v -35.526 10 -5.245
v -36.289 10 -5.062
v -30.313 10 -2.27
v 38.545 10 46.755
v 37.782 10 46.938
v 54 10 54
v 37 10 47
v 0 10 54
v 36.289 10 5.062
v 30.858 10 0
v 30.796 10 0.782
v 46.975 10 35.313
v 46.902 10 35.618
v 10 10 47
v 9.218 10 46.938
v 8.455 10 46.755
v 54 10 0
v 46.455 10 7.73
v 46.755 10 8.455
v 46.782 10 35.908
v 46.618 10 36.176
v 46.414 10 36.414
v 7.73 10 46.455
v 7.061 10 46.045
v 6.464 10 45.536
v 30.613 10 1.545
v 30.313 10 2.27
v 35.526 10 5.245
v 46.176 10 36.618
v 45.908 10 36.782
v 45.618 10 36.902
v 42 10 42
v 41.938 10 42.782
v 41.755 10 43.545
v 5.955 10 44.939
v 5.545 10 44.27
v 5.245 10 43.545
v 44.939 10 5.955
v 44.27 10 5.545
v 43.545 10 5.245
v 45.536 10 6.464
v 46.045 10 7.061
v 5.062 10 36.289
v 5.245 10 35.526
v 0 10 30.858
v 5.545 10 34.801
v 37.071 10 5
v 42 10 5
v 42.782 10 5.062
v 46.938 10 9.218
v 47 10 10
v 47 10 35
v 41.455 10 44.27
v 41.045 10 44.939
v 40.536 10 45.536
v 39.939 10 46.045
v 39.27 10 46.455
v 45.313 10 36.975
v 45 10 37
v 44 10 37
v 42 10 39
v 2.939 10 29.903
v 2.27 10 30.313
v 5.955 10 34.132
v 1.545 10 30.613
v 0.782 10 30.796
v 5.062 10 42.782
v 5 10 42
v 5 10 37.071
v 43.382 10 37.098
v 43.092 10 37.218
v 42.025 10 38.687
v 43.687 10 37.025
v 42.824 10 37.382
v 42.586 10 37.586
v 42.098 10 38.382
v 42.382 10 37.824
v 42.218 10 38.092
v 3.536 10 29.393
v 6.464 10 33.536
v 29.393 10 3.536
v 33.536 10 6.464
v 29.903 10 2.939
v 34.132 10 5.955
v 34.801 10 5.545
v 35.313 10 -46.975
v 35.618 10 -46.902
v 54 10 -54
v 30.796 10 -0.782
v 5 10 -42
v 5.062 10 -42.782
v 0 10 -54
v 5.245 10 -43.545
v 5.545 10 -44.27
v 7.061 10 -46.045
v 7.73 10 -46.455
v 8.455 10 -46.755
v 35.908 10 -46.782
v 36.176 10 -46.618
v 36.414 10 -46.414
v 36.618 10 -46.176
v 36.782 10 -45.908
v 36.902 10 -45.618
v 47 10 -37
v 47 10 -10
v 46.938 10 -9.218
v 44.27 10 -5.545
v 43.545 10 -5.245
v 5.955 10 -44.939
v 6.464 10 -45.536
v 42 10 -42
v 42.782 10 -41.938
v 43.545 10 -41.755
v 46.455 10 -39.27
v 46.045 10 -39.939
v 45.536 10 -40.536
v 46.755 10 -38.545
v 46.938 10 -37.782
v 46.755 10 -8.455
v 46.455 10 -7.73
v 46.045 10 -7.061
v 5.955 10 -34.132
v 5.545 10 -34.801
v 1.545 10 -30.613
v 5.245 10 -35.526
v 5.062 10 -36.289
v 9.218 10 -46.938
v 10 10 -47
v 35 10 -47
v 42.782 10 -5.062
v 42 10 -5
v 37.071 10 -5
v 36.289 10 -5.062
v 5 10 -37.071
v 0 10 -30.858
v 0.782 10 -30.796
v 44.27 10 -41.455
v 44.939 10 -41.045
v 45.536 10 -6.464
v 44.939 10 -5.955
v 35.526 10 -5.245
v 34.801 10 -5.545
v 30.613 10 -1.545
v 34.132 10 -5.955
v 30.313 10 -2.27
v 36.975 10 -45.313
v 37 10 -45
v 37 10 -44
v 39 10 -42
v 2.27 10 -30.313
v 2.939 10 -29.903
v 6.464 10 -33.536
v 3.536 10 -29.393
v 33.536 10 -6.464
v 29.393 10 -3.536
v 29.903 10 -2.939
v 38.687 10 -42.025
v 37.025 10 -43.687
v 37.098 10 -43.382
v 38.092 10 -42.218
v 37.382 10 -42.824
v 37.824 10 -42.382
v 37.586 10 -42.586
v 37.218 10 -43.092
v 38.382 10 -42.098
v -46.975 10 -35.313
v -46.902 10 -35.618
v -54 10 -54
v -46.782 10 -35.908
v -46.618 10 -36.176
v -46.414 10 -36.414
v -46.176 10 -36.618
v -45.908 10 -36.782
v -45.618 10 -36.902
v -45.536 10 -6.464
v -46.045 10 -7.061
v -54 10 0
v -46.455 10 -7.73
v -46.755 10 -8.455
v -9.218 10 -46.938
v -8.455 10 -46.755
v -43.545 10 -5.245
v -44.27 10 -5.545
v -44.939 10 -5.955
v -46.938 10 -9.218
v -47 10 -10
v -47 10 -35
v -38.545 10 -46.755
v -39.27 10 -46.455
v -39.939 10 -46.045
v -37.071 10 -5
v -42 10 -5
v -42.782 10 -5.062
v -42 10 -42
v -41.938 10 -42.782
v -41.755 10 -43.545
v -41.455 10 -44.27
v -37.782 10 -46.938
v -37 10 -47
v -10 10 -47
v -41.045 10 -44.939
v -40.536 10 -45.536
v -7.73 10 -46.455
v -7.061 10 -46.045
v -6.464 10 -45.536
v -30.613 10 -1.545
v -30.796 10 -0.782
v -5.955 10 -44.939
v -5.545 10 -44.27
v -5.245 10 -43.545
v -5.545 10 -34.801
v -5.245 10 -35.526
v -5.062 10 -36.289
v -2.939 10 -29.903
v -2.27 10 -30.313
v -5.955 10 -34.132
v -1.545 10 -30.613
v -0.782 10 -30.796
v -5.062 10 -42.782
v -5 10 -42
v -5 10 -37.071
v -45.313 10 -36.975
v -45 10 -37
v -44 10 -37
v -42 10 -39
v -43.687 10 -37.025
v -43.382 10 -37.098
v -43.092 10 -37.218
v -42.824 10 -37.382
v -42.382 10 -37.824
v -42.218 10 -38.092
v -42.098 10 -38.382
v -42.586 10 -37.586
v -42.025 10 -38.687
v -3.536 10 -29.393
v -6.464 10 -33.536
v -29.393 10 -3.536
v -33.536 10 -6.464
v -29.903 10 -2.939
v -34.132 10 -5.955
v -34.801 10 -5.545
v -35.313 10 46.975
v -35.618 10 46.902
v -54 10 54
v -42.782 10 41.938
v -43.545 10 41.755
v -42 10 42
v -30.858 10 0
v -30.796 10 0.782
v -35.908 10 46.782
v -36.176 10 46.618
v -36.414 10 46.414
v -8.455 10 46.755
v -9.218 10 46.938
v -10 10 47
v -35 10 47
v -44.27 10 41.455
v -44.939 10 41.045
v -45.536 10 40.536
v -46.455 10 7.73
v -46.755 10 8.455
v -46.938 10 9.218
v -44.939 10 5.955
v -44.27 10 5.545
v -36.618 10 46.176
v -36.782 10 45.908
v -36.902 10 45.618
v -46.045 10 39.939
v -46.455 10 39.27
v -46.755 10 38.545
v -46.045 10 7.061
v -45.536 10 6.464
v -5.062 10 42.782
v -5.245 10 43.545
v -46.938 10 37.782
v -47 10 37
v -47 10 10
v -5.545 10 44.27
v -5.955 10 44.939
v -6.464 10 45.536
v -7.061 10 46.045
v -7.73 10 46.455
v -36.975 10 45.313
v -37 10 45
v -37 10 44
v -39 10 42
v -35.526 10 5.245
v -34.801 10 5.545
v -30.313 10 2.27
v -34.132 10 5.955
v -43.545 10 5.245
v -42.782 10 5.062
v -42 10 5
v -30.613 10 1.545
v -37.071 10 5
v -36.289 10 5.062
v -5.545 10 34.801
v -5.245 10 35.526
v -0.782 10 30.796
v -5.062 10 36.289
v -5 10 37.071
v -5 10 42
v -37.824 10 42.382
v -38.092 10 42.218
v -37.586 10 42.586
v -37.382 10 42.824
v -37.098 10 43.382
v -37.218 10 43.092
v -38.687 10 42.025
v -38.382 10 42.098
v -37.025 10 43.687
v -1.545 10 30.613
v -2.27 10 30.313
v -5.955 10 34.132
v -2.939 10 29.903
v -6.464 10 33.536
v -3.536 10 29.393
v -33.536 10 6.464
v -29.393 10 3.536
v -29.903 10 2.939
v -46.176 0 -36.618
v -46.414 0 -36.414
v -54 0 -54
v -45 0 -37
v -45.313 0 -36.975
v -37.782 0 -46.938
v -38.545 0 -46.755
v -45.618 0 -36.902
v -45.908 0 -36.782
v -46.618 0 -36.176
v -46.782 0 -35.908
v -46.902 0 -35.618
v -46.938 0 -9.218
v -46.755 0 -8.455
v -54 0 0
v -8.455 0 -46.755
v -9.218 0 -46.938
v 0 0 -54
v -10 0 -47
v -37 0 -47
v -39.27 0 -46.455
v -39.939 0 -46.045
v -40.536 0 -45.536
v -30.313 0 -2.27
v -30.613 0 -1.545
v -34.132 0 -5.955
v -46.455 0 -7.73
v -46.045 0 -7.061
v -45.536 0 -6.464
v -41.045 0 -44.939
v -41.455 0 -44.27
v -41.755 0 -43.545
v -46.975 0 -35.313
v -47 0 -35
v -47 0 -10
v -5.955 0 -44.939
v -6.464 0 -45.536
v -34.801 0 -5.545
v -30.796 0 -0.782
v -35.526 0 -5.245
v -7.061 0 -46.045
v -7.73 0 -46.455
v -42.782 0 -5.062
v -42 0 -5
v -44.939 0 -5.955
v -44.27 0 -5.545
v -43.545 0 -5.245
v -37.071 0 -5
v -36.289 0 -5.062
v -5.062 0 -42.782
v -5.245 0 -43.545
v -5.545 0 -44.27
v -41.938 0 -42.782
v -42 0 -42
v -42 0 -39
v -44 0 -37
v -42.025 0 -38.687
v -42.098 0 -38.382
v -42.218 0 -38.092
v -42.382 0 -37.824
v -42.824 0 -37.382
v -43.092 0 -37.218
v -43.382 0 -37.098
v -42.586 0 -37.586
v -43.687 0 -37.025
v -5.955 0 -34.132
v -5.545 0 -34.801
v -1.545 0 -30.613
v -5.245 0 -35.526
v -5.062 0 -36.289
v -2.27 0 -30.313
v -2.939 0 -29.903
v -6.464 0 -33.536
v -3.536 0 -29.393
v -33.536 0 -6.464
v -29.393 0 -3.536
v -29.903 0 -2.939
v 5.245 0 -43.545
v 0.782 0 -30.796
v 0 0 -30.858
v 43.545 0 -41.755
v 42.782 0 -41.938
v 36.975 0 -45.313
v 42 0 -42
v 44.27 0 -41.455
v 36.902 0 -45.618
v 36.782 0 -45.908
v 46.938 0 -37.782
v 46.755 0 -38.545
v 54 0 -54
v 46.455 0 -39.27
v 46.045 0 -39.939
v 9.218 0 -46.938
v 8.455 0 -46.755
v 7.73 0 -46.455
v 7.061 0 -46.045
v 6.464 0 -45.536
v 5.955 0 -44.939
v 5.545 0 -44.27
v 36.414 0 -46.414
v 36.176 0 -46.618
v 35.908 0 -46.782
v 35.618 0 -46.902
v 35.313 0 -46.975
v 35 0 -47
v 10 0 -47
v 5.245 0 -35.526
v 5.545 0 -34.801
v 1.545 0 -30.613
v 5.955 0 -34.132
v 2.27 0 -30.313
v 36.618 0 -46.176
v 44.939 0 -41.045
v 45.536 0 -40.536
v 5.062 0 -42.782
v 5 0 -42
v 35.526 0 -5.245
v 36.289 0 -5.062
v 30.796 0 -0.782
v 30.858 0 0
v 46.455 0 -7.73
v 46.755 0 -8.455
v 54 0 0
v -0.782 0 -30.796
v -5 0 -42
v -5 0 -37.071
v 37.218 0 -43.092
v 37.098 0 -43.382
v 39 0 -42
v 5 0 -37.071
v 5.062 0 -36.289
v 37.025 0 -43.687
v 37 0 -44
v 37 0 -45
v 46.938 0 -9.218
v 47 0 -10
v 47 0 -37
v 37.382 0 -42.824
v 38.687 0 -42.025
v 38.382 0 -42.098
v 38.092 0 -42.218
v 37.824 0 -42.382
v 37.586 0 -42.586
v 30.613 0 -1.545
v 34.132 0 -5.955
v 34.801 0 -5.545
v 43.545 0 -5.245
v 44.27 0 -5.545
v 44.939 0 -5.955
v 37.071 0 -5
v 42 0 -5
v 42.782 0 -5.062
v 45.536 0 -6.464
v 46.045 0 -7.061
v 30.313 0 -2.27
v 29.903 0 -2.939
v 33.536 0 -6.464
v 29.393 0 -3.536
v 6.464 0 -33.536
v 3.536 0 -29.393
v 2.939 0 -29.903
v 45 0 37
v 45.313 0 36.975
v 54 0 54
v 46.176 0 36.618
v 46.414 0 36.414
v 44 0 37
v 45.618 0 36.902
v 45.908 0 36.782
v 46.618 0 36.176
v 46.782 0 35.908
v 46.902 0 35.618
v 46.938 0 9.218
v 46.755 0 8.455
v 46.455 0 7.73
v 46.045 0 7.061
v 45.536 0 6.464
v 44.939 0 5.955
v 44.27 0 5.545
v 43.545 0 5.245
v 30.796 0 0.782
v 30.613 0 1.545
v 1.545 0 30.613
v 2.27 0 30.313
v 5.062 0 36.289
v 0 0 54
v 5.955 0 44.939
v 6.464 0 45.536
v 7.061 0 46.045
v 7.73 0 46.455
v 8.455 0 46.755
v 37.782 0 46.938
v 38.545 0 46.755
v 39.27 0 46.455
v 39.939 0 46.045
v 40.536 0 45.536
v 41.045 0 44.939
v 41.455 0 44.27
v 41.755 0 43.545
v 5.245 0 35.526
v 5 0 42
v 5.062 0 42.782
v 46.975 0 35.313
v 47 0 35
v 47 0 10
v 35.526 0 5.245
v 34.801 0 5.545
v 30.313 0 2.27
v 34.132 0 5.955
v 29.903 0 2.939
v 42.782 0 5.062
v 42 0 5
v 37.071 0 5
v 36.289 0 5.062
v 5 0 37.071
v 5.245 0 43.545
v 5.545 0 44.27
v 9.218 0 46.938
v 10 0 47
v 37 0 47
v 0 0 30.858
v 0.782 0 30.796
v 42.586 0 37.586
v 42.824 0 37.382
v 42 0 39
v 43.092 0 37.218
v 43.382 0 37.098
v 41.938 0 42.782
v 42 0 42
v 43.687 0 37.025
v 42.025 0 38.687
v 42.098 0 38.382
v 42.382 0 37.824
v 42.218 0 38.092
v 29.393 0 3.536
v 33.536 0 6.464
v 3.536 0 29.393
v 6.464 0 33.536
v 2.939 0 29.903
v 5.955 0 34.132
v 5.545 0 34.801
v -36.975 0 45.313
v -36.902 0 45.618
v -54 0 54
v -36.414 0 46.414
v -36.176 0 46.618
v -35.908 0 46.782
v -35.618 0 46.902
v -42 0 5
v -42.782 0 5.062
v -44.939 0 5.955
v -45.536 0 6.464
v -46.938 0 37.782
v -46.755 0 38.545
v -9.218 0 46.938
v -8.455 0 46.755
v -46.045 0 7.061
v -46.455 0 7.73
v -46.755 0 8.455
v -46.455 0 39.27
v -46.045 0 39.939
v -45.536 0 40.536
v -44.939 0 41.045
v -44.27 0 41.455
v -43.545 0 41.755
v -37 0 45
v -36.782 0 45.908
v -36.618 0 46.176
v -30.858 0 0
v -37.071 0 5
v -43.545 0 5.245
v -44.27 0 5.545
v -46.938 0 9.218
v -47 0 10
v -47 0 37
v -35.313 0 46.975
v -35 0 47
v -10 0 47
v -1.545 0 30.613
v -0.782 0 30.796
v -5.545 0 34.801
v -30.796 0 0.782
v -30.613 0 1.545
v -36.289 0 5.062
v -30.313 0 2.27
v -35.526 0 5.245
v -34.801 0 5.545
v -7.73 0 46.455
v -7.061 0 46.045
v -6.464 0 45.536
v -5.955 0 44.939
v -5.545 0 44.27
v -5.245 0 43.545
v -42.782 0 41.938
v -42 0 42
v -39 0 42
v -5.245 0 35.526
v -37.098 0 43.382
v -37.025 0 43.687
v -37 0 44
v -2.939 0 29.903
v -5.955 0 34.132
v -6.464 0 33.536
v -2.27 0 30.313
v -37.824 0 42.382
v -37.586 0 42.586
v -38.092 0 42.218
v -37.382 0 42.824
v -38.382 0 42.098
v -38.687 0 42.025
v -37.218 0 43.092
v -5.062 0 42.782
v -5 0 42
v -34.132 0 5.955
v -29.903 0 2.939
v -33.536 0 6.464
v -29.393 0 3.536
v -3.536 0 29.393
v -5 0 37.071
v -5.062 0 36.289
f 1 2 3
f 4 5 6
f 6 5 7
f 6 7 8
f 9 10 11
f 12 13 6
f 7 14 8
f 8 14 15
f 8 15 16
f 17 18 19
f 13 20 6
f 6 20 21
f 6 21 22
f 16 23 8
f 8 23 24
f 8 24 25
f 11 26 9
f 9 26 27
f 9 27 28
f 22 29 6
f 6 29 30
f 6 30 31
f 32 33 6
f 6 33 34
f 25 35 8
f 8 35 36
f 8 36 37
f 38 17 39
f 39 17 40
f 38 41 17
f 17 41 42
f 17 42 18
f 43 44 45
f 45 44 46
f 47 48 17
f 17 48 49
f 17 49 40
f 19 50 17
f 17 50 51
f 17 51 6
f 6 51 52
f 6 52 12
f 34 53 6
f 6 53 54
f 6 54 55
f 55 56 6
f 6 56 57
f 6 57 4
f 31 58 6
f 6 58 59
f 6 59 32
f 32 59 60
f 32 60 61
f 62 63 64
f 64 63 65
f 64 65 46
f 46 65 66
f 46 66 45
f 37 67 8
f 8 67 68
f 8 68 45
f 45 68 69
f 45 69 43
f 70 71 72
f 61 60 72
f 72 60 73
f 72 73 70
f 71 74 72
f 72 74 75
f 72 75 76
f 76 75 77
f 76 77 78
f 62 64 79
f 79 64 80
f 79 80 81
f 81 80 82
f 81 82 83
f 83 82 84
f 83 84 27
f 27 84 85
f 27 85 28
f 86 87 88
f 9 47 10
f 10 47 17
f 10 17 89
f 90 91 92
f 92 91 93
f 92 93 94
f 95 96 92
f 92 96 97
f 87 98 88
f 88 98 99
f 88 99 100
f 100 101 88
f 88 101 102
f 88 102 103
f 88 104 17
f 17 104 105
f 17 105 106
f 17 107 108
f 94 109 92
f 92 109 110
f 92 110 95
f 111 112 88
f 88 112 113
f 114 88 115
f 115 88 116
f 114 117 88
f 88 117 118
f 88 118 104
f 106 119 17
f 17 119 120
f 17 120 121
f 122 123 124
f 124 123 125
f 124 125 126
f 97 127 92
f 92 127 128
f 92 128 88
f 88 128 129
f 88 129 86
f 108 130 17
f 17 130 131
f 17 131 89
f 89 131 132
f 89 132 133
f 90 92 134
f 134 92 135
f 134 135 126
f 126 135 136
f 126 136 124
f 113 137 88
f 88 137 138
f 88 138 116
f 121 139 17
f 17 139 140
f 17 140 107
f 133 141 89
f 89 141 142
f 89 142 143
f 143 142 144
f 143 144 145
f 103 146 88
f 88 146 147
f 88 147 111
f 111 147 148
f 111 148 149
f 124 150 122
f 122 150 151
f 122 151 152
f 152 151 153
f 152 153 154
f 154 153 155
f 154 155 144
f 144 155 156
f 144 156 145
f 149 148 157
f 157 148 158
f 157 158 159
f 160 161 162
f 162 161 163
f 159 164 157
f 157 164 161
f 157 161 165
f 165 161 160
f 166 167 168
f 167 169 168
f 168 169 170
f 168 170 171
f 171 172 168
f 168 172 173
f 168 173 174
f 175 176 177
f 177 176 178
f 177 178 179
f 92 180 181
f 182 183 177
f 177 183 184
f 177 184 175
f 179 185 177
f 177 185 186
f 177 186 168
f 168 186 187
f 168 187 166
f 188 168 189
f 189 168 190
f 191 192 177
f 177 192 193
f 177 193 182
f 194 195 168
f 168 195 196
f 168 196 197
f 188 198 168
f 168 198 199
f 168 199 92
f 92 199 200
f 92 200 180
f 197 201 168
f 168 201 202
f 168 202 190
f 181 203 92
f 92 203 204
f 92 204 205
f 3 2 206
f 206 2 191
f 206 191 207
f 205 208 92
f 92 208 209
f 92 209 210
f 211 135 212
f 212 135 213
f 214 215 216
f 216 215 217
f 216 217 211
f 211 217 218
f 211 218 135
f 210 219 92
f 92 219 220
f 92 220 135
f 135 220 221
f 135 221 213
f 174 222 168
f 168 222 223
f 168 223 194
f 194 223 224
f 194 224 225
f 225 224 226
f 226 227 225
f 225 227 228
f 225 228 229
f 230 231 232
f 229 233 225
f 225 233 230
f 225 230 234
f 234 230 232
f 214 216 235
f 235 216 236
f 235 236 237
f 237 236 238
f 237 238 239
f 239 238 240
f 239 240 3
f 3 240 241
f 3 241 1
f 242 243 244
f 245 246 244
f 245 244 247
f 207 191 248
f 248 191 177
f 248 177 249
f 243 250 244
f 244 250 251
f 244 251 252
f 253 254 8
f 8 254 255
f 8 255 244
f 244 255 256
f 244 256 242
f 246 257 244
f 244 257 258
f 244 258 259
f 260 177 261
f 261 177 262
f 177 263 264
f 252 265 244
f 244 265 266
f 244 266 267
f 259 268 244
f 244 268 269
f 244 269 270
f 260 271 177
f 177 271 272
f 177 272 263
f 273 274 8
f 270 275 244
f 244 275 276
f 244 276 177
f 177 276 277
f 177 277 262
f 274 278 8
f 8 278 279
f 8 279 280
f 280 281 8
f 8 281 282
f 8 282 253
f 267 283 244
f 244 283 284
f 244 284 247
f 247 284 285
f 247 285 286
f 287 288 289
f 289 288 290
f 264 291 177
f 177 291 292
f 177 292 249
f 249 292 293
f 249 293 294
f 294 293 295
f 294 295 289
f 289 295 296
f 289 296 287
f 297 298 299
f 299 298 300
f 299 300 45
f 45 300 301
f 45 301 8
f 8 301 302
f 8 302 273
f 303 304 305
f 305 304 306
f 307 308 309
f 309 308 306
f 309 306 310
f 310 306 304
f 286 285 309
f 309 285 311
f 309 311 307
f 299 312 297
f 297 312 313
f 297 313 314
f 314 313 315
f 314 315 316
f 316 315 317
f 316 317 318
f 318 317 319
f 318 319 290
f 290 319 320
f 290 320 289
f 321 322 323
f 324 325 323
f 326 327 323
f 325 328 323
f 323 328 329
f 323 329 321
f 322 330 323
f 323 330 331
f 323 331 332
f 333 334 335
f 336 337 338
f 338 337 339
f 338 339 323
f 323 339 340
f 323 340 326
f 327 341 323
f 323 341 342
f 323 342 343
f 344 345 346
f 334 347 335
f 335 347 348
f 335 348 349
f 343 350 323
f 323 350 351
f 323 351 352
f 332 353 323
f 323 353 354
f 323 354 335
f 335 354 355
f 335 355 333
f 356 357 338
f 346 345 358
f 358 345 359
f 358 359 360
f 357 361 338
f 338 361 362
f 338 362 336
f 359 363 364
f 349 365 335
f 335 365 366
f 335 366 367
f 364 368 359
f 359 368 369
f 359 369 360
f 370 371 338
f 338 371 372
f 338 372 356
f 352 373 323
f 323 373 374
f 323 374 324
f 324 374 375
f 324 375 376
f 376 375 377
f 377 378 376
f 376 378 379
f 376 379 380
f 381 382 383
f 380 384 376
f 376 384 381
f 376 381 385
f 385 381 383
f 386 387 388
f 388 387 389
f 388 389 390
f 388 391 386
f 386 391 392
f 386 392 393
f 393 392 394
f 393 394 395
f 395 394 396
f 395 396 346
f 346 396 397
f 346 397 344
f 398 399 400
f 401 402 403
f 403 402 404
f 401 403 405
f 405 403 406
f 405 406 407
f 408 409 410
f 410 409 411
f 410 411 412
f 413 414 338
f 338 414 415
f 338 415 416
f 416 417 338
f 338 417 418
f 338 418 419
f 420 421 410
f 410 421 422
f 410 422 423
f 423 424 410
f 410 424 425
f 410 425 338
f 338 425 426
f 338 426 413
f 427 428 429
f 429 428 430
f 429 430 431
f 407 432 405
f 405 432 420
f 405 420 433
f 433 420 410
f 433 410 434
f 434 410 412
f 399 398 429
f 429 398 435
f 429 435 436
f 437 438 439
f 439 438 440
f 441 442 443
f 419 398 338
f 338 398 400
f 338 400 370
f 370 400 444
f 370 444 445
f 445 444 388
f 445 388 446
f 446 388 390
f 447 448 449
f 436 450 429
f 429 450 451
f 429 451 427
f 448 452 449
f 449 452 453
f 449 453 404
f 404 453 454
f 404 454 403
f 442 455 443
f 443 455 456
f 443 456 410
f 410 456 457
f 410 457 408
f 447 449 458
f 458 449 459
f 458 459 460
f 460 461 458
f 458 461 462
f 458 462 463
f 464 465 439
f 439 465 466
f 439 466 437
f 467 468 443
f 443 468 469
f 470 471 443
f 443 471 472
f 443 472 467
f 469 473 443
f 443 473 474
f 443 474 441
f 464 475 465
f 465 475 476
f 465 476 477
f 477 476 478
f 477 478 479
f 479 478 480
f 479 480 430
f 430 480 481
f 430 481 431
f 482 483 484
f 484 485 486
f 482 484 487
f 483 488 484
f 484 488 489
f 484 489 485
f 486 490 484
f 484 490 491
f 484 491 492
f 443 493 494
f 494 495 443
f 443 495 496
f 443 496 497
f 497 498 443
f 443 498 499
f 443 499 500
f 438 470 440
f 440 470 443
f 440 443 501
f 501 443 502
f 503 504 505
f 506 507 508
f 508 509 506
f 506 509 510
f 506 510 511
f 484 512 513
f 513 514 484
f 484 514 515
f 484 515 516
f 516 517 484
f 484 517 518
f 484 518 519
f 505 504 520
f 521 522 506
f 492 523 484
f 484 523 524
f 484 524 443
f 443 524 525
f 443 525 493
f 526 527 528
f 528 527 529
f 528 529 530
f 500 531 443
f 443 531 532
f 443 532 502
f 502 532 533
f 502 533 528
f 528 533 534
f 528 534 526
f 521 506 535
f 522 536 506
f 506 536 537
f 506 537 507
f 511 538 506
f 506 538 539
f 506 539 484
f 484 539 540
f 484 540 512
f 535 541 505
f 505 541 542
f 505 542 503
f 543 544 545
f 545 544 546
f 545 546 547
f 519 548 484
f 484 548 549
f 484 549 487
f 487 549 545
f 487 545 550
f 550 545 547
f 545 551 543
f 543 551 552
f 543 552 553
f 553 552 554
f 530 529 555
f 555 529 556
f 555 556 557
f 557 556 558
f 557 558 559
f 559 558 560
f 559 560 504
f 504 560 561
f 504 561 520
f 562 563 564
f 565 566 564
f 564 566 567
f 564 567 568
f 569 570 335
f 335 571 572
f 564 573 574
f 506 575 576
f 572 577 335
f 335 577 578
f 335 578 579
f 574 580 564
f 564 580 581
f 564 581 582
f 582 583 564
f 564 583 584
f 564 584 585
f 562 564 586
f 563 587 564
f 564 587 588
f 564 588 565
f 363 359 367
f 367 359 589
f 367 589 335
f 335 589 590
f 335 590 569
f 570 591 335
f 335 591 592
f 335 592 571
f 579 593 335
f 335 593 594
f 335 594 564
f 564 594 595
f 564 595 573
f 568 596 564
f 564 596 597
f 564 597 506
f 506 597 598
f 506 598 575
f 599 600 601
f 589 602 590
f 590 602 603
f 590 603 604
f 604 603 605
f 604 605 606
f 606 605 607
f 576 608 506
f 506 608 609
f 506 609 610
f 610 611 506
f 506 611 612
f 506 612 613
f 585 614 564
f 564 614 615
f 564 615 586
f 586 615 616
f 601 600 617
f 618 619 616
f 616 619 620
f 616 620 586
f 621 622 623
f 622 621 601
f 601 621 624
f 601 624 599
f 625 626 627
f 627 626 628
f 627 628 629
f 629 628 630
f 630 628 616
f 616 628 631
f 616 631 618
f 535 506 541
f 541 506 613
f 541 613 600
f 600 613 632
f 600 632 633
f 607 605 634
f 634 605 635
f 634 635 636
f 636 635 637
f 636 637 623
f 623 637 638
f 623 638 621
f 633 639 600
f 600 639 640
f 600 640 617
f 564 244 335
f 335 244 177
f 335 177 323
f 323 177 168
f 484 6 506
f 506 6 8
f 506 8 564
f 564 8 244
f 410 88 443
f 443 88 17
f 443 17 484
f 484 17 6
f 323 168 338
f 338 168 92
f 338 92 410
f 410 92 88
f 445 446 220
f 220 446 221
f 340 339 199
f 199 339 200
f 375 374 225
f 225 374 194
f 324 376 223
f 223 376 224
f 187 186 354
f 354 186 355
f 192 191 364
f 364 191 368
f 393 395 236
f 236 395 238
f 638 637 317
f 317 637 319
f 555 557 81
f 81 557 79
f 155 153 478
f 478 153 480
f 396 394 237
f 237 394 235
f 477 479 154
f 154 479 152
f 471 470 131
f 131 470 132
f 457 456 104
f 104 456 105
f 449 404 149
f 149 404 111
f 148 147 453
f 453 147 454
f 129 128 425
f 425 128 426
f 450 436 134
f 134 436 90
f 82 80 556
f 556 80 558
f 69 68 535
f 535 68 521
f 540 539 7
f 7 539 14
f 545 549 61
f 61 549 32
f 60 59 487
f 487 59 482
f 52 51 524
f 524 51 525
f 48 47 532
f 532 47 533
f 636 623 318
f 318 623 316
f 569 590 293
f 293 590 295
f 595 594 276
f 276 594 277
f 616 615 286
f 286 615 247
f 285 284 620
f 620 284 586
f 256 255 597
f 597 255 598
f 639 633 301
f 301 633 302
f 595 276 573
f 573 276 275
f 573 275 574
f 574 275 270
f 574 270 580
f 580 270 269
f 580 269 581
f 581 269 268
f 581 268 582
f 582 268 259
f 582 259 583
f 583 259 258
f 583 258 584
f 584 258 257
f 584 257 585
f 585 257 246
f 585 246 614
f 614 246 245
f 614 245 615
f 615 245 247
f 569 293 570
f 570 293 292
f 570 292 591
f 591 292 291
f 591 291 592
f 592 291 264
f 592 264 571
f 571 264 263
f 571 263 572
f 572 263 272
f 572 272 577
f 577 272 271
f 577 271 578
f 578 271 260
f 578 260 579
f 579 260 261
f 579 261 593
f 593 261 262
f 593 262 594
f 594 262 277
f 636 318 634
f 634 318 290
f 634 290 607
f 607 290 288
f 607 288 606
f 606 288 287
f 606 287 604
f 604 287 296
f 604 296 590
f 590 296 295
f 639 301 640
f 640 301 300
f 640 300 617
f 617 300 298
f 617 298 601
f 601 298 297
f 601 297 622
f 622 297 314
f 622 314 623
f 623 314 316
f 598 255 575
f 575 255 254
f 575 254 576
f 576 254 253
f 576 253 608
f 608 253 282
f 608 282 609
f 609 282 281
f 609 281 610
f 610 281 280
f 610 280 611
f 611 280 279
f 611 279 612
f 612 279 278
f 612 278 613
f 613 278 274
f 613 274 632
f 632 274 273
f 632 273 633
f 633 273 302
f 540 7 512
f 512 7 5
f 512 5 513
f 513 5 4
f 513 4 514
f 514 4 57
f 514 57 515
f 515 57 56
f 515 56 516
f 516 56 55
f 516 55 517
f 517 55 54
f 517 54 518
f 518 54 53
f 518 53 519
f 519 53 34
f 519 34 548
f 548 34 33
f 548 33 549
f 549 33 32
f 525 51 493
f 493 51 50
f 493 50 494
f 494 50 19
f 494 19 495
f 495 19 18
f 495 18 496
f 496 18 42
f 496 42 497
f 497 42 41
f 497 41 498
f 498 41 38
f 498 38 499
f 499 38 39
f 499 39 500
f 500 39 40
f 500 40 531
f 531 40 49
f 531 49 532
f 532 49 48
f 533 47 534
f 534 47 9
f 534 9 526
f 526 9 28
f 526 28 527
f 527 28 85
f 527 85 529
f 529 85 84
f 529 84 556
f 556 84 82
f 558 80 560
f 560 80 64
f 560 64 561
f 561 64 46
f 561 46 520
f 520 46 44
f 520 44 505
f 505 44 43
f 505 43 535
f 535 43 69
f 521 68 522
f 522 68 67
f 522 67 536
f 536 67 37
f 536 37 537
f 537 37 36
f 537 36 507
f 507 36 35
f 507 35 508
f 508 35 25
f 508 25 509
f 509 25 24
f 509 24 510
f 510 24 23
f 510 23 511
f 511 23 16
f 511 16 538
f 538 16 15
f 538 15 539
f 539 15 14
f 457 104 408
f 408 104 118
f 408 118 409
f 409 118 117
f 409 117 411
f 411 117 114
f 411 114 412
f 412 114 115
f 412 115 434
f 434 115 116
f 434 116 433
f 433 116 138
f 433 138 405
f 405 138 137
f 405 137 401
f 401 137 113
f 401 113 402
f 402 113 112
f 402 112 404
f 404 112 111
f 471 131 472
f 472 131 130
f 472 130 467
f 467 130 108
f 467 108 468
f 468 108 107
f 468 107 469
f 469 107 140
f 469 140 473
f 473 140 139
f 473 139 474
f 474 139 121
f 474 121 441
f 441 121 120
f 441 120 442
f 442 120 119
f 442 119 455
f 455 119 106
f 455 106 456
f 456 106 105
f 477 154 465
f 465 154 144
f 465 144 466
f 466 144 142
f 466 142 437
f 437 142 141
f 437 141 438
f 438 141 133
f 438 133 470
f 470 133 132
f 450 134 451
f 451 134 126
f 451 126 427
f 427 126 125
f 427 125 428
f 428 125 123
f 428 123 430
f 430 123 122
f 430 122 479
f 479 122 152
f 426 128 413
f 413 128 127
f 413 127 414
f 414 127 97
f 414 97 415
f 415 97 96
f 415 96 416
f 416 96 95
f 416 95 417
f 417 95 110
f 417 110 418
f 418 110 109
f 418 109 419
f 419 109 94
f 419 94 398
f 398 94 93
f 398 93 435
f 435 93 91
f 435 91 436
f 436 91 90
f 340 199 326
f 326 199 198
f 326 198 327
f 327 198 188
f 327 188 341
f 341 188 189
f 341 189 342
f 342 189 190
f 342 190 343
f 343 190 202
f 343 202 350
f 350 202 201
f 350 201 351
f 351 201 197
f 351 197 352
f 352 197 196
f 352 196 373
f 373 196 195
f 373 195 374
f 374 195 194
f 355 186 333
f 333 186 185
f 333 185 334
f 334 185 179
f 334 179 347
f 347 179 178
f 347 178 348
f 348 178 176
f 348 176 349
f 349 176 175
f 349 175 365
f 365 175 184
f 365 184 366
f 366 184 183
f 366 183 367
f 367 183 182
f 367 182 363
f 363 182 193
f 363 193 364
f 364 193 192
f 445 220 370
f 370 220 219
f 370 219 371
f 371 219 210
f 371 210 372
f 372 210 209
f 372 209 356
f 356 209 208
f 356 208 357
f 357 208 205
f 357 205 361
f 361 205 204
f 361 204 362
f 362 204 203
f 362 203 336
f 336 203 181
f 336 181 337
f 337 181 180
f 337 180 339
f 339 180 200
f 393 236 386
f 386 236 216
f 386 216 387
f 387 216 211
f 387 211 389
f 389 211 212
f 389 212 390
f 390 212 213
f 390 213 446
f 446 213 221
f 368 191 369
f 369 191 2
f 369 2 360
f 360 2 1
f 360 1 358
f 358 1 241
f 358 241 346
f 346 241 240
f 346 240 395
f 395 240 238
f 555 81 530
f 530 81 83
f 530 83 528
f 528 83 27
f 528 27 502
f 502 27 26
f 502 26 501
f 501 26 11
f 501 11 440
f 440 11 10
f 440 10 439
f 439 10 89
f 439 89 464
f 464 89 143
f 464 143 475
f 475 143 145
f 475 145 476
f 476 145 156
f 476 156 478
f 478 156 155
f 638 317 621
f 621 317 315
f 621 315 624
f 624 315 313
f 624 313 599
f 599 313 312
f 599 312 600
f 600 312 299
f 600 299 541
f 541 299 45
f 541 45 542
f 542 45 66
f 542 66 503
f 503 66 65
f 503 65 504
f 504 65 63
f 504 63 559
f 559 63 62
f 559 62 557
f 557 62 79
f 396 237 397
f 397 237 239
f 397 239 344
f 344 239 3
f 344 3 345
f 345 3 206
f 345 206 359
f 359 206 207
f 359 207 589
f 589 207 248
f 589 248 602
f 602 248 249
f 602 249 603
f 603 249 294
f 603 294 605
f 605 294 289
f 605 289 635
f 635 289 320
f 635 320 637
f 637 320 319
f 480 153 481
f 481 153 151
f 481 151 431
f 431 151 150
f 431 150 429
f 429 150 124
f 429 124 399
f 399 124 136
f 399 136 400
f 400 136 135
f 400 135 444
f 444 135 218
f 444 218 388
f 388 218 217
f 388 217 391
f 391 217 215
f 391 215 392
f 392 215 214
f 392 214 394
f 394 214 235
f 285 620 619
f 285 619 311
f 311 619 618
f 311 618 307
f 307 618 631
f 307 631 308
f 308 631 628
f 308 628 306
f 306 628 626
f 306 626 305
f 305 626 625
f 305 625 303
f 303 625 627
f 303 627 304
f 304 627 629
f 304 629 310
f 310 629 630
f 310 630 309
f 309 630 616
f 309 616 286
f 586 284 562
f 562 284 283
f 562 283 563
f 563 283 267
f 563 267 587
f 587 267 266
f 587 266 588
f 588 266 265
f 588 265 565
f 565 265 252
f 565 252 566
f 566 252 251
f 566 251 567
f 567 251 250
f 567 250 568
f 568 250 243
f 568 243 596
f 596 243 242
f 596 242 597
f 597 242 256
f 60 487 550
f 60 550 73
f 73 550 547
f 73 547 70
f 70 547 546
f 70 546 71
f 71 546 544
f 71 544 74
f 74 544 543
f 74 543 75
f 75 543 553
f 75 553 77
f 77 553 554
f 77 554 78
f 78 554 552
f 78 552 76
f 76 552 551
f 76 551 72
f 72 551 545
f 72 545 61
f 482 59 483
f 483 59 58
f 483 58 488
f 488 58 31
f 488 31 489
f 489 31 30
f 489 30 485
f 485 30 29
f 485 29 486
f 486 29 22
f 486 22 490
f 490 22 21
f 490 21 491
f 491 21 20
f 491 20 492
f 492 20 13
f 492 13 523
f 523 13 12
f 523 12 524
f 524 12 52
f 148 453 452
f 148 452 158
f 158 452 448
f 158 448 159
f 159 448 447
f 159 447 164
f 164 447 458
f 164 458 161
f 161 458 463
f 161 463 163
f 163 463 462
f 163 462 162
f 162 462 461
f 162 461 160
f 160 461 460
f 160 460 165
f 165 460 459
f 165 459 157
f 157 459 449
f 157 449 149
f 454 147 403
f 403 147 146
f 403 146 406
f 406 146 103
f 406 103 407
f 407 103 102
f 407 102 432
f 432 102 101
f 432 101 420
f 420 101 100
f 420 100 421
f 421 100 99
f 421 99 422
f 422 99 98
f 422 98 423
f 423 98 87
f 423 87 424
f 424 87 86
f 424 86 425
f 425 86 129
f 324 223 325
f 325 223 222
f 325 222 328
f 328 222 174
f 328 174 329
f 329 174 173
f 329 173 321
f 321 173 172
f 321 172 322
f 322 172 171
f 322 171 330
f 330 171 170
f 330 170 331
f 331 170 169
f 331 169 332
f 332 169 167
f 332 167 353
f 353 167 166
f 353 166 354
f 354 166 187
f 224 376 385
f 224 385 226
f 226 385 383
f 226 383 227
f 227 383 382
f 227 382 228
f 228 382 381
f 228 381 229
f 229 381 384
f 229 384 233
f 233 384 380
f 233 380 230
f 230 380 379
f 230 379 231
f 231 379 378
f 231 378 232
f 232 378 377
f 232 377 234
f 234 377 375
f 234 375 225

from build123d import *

# Parameters (mm, degrees)
SKETCH1_W           = 108
SKETCH1_H           = 108
BOSS_EXTRUDE1_DEPTH = 10
FILLET1_R           = 5
FILLET3_R           = 2


with BuildPart() as part:
    # Sketch1 → Boss-Extrude1 (new body)
    with BuildSketch(Plane(origin=(0, 0, 0), x_dir=(1, 0, 0), z_dir=(0, 1, 0))):
        Rectangle(SKETCH1_W, SKETCH1_H)
        Polygon((-42, 47), (-42, 37), (-47, 37), (-47, 5), (-35, 5), (-5, 35), (-5, 47), align=None, mode=Mode.SUBTRACT)
        Polygon((-32.928932188, 0), (0, 32.928932188), (32.928932188, 0), (0, -32.928932188), align=None, mode=Mode.SUBTRACT)
        Polygon((5, 47), (5, 35), (35, 5), (47, 5), (47, 42), (37, 42), (37, 47), align=None, mode=Mode.SUBTRACT)
        Polygon((47, -5), (35, -5), (5, -35), (5, -47), (42, -47), (42, -37), (47, -37), align=None, mode=Mode.SUBTRACT)
        Polygon((-5, -47), (-5, -35), (-35, -5), (-47, -5), (-47, -42), (-37, -42), (-37, -47), align=None, mode=Mode.SUBTRACT)
    extrude(amount=BOSS_EXTRUDE1_DEPTH)

    # Fillet1
    fillet1_edges = [part.edges().sort_by_distance(p)[0] for p in [
        (-5, 5, -35),
        (-5, 5, -47),
        (-42, 5, -47),
        (-47, 5, -5),
        (-35, 5, -5),
        (-32.928932188, 5, 0),
        (0, 5, 32.928932188),
        (32.928932188, 5, 0),
        (0, 5, -32.928932188),
        (5, 5, -35),
        (35, 5, -5),
        (47, 5, -5),
        (47, 5, -42),
        (5, 5, -47),
        (35, 5, 5),
        (5, 5, 35),
        (5, 5, 47),
        (42, 5, 47),
        (47, 5, 5),
        (-5, 5, 35),
        (-35, 5, 5),
        (-47, 5, 5),
        (-47, 5, 42),
        (-5, 5, 47),
    ]]
    fillet(fillet1_edges, radius=FILLET1_R)

    # Fillet3
    fillet3_edges = [part.edges().sort_by_distance(p)[0] for p in [
        (-42, 5, -37),
        (-47, 5, -37),
        (37, 5, -42),
        (37, 5, -47),
        (42, 5, 37),
        (47, 5, 37),
        (-37, 5, 42),
        (-37, 5, 47),
    ]]
    fillet(fillet3_edges, radius=FILLET3_R)


solid = part.part
